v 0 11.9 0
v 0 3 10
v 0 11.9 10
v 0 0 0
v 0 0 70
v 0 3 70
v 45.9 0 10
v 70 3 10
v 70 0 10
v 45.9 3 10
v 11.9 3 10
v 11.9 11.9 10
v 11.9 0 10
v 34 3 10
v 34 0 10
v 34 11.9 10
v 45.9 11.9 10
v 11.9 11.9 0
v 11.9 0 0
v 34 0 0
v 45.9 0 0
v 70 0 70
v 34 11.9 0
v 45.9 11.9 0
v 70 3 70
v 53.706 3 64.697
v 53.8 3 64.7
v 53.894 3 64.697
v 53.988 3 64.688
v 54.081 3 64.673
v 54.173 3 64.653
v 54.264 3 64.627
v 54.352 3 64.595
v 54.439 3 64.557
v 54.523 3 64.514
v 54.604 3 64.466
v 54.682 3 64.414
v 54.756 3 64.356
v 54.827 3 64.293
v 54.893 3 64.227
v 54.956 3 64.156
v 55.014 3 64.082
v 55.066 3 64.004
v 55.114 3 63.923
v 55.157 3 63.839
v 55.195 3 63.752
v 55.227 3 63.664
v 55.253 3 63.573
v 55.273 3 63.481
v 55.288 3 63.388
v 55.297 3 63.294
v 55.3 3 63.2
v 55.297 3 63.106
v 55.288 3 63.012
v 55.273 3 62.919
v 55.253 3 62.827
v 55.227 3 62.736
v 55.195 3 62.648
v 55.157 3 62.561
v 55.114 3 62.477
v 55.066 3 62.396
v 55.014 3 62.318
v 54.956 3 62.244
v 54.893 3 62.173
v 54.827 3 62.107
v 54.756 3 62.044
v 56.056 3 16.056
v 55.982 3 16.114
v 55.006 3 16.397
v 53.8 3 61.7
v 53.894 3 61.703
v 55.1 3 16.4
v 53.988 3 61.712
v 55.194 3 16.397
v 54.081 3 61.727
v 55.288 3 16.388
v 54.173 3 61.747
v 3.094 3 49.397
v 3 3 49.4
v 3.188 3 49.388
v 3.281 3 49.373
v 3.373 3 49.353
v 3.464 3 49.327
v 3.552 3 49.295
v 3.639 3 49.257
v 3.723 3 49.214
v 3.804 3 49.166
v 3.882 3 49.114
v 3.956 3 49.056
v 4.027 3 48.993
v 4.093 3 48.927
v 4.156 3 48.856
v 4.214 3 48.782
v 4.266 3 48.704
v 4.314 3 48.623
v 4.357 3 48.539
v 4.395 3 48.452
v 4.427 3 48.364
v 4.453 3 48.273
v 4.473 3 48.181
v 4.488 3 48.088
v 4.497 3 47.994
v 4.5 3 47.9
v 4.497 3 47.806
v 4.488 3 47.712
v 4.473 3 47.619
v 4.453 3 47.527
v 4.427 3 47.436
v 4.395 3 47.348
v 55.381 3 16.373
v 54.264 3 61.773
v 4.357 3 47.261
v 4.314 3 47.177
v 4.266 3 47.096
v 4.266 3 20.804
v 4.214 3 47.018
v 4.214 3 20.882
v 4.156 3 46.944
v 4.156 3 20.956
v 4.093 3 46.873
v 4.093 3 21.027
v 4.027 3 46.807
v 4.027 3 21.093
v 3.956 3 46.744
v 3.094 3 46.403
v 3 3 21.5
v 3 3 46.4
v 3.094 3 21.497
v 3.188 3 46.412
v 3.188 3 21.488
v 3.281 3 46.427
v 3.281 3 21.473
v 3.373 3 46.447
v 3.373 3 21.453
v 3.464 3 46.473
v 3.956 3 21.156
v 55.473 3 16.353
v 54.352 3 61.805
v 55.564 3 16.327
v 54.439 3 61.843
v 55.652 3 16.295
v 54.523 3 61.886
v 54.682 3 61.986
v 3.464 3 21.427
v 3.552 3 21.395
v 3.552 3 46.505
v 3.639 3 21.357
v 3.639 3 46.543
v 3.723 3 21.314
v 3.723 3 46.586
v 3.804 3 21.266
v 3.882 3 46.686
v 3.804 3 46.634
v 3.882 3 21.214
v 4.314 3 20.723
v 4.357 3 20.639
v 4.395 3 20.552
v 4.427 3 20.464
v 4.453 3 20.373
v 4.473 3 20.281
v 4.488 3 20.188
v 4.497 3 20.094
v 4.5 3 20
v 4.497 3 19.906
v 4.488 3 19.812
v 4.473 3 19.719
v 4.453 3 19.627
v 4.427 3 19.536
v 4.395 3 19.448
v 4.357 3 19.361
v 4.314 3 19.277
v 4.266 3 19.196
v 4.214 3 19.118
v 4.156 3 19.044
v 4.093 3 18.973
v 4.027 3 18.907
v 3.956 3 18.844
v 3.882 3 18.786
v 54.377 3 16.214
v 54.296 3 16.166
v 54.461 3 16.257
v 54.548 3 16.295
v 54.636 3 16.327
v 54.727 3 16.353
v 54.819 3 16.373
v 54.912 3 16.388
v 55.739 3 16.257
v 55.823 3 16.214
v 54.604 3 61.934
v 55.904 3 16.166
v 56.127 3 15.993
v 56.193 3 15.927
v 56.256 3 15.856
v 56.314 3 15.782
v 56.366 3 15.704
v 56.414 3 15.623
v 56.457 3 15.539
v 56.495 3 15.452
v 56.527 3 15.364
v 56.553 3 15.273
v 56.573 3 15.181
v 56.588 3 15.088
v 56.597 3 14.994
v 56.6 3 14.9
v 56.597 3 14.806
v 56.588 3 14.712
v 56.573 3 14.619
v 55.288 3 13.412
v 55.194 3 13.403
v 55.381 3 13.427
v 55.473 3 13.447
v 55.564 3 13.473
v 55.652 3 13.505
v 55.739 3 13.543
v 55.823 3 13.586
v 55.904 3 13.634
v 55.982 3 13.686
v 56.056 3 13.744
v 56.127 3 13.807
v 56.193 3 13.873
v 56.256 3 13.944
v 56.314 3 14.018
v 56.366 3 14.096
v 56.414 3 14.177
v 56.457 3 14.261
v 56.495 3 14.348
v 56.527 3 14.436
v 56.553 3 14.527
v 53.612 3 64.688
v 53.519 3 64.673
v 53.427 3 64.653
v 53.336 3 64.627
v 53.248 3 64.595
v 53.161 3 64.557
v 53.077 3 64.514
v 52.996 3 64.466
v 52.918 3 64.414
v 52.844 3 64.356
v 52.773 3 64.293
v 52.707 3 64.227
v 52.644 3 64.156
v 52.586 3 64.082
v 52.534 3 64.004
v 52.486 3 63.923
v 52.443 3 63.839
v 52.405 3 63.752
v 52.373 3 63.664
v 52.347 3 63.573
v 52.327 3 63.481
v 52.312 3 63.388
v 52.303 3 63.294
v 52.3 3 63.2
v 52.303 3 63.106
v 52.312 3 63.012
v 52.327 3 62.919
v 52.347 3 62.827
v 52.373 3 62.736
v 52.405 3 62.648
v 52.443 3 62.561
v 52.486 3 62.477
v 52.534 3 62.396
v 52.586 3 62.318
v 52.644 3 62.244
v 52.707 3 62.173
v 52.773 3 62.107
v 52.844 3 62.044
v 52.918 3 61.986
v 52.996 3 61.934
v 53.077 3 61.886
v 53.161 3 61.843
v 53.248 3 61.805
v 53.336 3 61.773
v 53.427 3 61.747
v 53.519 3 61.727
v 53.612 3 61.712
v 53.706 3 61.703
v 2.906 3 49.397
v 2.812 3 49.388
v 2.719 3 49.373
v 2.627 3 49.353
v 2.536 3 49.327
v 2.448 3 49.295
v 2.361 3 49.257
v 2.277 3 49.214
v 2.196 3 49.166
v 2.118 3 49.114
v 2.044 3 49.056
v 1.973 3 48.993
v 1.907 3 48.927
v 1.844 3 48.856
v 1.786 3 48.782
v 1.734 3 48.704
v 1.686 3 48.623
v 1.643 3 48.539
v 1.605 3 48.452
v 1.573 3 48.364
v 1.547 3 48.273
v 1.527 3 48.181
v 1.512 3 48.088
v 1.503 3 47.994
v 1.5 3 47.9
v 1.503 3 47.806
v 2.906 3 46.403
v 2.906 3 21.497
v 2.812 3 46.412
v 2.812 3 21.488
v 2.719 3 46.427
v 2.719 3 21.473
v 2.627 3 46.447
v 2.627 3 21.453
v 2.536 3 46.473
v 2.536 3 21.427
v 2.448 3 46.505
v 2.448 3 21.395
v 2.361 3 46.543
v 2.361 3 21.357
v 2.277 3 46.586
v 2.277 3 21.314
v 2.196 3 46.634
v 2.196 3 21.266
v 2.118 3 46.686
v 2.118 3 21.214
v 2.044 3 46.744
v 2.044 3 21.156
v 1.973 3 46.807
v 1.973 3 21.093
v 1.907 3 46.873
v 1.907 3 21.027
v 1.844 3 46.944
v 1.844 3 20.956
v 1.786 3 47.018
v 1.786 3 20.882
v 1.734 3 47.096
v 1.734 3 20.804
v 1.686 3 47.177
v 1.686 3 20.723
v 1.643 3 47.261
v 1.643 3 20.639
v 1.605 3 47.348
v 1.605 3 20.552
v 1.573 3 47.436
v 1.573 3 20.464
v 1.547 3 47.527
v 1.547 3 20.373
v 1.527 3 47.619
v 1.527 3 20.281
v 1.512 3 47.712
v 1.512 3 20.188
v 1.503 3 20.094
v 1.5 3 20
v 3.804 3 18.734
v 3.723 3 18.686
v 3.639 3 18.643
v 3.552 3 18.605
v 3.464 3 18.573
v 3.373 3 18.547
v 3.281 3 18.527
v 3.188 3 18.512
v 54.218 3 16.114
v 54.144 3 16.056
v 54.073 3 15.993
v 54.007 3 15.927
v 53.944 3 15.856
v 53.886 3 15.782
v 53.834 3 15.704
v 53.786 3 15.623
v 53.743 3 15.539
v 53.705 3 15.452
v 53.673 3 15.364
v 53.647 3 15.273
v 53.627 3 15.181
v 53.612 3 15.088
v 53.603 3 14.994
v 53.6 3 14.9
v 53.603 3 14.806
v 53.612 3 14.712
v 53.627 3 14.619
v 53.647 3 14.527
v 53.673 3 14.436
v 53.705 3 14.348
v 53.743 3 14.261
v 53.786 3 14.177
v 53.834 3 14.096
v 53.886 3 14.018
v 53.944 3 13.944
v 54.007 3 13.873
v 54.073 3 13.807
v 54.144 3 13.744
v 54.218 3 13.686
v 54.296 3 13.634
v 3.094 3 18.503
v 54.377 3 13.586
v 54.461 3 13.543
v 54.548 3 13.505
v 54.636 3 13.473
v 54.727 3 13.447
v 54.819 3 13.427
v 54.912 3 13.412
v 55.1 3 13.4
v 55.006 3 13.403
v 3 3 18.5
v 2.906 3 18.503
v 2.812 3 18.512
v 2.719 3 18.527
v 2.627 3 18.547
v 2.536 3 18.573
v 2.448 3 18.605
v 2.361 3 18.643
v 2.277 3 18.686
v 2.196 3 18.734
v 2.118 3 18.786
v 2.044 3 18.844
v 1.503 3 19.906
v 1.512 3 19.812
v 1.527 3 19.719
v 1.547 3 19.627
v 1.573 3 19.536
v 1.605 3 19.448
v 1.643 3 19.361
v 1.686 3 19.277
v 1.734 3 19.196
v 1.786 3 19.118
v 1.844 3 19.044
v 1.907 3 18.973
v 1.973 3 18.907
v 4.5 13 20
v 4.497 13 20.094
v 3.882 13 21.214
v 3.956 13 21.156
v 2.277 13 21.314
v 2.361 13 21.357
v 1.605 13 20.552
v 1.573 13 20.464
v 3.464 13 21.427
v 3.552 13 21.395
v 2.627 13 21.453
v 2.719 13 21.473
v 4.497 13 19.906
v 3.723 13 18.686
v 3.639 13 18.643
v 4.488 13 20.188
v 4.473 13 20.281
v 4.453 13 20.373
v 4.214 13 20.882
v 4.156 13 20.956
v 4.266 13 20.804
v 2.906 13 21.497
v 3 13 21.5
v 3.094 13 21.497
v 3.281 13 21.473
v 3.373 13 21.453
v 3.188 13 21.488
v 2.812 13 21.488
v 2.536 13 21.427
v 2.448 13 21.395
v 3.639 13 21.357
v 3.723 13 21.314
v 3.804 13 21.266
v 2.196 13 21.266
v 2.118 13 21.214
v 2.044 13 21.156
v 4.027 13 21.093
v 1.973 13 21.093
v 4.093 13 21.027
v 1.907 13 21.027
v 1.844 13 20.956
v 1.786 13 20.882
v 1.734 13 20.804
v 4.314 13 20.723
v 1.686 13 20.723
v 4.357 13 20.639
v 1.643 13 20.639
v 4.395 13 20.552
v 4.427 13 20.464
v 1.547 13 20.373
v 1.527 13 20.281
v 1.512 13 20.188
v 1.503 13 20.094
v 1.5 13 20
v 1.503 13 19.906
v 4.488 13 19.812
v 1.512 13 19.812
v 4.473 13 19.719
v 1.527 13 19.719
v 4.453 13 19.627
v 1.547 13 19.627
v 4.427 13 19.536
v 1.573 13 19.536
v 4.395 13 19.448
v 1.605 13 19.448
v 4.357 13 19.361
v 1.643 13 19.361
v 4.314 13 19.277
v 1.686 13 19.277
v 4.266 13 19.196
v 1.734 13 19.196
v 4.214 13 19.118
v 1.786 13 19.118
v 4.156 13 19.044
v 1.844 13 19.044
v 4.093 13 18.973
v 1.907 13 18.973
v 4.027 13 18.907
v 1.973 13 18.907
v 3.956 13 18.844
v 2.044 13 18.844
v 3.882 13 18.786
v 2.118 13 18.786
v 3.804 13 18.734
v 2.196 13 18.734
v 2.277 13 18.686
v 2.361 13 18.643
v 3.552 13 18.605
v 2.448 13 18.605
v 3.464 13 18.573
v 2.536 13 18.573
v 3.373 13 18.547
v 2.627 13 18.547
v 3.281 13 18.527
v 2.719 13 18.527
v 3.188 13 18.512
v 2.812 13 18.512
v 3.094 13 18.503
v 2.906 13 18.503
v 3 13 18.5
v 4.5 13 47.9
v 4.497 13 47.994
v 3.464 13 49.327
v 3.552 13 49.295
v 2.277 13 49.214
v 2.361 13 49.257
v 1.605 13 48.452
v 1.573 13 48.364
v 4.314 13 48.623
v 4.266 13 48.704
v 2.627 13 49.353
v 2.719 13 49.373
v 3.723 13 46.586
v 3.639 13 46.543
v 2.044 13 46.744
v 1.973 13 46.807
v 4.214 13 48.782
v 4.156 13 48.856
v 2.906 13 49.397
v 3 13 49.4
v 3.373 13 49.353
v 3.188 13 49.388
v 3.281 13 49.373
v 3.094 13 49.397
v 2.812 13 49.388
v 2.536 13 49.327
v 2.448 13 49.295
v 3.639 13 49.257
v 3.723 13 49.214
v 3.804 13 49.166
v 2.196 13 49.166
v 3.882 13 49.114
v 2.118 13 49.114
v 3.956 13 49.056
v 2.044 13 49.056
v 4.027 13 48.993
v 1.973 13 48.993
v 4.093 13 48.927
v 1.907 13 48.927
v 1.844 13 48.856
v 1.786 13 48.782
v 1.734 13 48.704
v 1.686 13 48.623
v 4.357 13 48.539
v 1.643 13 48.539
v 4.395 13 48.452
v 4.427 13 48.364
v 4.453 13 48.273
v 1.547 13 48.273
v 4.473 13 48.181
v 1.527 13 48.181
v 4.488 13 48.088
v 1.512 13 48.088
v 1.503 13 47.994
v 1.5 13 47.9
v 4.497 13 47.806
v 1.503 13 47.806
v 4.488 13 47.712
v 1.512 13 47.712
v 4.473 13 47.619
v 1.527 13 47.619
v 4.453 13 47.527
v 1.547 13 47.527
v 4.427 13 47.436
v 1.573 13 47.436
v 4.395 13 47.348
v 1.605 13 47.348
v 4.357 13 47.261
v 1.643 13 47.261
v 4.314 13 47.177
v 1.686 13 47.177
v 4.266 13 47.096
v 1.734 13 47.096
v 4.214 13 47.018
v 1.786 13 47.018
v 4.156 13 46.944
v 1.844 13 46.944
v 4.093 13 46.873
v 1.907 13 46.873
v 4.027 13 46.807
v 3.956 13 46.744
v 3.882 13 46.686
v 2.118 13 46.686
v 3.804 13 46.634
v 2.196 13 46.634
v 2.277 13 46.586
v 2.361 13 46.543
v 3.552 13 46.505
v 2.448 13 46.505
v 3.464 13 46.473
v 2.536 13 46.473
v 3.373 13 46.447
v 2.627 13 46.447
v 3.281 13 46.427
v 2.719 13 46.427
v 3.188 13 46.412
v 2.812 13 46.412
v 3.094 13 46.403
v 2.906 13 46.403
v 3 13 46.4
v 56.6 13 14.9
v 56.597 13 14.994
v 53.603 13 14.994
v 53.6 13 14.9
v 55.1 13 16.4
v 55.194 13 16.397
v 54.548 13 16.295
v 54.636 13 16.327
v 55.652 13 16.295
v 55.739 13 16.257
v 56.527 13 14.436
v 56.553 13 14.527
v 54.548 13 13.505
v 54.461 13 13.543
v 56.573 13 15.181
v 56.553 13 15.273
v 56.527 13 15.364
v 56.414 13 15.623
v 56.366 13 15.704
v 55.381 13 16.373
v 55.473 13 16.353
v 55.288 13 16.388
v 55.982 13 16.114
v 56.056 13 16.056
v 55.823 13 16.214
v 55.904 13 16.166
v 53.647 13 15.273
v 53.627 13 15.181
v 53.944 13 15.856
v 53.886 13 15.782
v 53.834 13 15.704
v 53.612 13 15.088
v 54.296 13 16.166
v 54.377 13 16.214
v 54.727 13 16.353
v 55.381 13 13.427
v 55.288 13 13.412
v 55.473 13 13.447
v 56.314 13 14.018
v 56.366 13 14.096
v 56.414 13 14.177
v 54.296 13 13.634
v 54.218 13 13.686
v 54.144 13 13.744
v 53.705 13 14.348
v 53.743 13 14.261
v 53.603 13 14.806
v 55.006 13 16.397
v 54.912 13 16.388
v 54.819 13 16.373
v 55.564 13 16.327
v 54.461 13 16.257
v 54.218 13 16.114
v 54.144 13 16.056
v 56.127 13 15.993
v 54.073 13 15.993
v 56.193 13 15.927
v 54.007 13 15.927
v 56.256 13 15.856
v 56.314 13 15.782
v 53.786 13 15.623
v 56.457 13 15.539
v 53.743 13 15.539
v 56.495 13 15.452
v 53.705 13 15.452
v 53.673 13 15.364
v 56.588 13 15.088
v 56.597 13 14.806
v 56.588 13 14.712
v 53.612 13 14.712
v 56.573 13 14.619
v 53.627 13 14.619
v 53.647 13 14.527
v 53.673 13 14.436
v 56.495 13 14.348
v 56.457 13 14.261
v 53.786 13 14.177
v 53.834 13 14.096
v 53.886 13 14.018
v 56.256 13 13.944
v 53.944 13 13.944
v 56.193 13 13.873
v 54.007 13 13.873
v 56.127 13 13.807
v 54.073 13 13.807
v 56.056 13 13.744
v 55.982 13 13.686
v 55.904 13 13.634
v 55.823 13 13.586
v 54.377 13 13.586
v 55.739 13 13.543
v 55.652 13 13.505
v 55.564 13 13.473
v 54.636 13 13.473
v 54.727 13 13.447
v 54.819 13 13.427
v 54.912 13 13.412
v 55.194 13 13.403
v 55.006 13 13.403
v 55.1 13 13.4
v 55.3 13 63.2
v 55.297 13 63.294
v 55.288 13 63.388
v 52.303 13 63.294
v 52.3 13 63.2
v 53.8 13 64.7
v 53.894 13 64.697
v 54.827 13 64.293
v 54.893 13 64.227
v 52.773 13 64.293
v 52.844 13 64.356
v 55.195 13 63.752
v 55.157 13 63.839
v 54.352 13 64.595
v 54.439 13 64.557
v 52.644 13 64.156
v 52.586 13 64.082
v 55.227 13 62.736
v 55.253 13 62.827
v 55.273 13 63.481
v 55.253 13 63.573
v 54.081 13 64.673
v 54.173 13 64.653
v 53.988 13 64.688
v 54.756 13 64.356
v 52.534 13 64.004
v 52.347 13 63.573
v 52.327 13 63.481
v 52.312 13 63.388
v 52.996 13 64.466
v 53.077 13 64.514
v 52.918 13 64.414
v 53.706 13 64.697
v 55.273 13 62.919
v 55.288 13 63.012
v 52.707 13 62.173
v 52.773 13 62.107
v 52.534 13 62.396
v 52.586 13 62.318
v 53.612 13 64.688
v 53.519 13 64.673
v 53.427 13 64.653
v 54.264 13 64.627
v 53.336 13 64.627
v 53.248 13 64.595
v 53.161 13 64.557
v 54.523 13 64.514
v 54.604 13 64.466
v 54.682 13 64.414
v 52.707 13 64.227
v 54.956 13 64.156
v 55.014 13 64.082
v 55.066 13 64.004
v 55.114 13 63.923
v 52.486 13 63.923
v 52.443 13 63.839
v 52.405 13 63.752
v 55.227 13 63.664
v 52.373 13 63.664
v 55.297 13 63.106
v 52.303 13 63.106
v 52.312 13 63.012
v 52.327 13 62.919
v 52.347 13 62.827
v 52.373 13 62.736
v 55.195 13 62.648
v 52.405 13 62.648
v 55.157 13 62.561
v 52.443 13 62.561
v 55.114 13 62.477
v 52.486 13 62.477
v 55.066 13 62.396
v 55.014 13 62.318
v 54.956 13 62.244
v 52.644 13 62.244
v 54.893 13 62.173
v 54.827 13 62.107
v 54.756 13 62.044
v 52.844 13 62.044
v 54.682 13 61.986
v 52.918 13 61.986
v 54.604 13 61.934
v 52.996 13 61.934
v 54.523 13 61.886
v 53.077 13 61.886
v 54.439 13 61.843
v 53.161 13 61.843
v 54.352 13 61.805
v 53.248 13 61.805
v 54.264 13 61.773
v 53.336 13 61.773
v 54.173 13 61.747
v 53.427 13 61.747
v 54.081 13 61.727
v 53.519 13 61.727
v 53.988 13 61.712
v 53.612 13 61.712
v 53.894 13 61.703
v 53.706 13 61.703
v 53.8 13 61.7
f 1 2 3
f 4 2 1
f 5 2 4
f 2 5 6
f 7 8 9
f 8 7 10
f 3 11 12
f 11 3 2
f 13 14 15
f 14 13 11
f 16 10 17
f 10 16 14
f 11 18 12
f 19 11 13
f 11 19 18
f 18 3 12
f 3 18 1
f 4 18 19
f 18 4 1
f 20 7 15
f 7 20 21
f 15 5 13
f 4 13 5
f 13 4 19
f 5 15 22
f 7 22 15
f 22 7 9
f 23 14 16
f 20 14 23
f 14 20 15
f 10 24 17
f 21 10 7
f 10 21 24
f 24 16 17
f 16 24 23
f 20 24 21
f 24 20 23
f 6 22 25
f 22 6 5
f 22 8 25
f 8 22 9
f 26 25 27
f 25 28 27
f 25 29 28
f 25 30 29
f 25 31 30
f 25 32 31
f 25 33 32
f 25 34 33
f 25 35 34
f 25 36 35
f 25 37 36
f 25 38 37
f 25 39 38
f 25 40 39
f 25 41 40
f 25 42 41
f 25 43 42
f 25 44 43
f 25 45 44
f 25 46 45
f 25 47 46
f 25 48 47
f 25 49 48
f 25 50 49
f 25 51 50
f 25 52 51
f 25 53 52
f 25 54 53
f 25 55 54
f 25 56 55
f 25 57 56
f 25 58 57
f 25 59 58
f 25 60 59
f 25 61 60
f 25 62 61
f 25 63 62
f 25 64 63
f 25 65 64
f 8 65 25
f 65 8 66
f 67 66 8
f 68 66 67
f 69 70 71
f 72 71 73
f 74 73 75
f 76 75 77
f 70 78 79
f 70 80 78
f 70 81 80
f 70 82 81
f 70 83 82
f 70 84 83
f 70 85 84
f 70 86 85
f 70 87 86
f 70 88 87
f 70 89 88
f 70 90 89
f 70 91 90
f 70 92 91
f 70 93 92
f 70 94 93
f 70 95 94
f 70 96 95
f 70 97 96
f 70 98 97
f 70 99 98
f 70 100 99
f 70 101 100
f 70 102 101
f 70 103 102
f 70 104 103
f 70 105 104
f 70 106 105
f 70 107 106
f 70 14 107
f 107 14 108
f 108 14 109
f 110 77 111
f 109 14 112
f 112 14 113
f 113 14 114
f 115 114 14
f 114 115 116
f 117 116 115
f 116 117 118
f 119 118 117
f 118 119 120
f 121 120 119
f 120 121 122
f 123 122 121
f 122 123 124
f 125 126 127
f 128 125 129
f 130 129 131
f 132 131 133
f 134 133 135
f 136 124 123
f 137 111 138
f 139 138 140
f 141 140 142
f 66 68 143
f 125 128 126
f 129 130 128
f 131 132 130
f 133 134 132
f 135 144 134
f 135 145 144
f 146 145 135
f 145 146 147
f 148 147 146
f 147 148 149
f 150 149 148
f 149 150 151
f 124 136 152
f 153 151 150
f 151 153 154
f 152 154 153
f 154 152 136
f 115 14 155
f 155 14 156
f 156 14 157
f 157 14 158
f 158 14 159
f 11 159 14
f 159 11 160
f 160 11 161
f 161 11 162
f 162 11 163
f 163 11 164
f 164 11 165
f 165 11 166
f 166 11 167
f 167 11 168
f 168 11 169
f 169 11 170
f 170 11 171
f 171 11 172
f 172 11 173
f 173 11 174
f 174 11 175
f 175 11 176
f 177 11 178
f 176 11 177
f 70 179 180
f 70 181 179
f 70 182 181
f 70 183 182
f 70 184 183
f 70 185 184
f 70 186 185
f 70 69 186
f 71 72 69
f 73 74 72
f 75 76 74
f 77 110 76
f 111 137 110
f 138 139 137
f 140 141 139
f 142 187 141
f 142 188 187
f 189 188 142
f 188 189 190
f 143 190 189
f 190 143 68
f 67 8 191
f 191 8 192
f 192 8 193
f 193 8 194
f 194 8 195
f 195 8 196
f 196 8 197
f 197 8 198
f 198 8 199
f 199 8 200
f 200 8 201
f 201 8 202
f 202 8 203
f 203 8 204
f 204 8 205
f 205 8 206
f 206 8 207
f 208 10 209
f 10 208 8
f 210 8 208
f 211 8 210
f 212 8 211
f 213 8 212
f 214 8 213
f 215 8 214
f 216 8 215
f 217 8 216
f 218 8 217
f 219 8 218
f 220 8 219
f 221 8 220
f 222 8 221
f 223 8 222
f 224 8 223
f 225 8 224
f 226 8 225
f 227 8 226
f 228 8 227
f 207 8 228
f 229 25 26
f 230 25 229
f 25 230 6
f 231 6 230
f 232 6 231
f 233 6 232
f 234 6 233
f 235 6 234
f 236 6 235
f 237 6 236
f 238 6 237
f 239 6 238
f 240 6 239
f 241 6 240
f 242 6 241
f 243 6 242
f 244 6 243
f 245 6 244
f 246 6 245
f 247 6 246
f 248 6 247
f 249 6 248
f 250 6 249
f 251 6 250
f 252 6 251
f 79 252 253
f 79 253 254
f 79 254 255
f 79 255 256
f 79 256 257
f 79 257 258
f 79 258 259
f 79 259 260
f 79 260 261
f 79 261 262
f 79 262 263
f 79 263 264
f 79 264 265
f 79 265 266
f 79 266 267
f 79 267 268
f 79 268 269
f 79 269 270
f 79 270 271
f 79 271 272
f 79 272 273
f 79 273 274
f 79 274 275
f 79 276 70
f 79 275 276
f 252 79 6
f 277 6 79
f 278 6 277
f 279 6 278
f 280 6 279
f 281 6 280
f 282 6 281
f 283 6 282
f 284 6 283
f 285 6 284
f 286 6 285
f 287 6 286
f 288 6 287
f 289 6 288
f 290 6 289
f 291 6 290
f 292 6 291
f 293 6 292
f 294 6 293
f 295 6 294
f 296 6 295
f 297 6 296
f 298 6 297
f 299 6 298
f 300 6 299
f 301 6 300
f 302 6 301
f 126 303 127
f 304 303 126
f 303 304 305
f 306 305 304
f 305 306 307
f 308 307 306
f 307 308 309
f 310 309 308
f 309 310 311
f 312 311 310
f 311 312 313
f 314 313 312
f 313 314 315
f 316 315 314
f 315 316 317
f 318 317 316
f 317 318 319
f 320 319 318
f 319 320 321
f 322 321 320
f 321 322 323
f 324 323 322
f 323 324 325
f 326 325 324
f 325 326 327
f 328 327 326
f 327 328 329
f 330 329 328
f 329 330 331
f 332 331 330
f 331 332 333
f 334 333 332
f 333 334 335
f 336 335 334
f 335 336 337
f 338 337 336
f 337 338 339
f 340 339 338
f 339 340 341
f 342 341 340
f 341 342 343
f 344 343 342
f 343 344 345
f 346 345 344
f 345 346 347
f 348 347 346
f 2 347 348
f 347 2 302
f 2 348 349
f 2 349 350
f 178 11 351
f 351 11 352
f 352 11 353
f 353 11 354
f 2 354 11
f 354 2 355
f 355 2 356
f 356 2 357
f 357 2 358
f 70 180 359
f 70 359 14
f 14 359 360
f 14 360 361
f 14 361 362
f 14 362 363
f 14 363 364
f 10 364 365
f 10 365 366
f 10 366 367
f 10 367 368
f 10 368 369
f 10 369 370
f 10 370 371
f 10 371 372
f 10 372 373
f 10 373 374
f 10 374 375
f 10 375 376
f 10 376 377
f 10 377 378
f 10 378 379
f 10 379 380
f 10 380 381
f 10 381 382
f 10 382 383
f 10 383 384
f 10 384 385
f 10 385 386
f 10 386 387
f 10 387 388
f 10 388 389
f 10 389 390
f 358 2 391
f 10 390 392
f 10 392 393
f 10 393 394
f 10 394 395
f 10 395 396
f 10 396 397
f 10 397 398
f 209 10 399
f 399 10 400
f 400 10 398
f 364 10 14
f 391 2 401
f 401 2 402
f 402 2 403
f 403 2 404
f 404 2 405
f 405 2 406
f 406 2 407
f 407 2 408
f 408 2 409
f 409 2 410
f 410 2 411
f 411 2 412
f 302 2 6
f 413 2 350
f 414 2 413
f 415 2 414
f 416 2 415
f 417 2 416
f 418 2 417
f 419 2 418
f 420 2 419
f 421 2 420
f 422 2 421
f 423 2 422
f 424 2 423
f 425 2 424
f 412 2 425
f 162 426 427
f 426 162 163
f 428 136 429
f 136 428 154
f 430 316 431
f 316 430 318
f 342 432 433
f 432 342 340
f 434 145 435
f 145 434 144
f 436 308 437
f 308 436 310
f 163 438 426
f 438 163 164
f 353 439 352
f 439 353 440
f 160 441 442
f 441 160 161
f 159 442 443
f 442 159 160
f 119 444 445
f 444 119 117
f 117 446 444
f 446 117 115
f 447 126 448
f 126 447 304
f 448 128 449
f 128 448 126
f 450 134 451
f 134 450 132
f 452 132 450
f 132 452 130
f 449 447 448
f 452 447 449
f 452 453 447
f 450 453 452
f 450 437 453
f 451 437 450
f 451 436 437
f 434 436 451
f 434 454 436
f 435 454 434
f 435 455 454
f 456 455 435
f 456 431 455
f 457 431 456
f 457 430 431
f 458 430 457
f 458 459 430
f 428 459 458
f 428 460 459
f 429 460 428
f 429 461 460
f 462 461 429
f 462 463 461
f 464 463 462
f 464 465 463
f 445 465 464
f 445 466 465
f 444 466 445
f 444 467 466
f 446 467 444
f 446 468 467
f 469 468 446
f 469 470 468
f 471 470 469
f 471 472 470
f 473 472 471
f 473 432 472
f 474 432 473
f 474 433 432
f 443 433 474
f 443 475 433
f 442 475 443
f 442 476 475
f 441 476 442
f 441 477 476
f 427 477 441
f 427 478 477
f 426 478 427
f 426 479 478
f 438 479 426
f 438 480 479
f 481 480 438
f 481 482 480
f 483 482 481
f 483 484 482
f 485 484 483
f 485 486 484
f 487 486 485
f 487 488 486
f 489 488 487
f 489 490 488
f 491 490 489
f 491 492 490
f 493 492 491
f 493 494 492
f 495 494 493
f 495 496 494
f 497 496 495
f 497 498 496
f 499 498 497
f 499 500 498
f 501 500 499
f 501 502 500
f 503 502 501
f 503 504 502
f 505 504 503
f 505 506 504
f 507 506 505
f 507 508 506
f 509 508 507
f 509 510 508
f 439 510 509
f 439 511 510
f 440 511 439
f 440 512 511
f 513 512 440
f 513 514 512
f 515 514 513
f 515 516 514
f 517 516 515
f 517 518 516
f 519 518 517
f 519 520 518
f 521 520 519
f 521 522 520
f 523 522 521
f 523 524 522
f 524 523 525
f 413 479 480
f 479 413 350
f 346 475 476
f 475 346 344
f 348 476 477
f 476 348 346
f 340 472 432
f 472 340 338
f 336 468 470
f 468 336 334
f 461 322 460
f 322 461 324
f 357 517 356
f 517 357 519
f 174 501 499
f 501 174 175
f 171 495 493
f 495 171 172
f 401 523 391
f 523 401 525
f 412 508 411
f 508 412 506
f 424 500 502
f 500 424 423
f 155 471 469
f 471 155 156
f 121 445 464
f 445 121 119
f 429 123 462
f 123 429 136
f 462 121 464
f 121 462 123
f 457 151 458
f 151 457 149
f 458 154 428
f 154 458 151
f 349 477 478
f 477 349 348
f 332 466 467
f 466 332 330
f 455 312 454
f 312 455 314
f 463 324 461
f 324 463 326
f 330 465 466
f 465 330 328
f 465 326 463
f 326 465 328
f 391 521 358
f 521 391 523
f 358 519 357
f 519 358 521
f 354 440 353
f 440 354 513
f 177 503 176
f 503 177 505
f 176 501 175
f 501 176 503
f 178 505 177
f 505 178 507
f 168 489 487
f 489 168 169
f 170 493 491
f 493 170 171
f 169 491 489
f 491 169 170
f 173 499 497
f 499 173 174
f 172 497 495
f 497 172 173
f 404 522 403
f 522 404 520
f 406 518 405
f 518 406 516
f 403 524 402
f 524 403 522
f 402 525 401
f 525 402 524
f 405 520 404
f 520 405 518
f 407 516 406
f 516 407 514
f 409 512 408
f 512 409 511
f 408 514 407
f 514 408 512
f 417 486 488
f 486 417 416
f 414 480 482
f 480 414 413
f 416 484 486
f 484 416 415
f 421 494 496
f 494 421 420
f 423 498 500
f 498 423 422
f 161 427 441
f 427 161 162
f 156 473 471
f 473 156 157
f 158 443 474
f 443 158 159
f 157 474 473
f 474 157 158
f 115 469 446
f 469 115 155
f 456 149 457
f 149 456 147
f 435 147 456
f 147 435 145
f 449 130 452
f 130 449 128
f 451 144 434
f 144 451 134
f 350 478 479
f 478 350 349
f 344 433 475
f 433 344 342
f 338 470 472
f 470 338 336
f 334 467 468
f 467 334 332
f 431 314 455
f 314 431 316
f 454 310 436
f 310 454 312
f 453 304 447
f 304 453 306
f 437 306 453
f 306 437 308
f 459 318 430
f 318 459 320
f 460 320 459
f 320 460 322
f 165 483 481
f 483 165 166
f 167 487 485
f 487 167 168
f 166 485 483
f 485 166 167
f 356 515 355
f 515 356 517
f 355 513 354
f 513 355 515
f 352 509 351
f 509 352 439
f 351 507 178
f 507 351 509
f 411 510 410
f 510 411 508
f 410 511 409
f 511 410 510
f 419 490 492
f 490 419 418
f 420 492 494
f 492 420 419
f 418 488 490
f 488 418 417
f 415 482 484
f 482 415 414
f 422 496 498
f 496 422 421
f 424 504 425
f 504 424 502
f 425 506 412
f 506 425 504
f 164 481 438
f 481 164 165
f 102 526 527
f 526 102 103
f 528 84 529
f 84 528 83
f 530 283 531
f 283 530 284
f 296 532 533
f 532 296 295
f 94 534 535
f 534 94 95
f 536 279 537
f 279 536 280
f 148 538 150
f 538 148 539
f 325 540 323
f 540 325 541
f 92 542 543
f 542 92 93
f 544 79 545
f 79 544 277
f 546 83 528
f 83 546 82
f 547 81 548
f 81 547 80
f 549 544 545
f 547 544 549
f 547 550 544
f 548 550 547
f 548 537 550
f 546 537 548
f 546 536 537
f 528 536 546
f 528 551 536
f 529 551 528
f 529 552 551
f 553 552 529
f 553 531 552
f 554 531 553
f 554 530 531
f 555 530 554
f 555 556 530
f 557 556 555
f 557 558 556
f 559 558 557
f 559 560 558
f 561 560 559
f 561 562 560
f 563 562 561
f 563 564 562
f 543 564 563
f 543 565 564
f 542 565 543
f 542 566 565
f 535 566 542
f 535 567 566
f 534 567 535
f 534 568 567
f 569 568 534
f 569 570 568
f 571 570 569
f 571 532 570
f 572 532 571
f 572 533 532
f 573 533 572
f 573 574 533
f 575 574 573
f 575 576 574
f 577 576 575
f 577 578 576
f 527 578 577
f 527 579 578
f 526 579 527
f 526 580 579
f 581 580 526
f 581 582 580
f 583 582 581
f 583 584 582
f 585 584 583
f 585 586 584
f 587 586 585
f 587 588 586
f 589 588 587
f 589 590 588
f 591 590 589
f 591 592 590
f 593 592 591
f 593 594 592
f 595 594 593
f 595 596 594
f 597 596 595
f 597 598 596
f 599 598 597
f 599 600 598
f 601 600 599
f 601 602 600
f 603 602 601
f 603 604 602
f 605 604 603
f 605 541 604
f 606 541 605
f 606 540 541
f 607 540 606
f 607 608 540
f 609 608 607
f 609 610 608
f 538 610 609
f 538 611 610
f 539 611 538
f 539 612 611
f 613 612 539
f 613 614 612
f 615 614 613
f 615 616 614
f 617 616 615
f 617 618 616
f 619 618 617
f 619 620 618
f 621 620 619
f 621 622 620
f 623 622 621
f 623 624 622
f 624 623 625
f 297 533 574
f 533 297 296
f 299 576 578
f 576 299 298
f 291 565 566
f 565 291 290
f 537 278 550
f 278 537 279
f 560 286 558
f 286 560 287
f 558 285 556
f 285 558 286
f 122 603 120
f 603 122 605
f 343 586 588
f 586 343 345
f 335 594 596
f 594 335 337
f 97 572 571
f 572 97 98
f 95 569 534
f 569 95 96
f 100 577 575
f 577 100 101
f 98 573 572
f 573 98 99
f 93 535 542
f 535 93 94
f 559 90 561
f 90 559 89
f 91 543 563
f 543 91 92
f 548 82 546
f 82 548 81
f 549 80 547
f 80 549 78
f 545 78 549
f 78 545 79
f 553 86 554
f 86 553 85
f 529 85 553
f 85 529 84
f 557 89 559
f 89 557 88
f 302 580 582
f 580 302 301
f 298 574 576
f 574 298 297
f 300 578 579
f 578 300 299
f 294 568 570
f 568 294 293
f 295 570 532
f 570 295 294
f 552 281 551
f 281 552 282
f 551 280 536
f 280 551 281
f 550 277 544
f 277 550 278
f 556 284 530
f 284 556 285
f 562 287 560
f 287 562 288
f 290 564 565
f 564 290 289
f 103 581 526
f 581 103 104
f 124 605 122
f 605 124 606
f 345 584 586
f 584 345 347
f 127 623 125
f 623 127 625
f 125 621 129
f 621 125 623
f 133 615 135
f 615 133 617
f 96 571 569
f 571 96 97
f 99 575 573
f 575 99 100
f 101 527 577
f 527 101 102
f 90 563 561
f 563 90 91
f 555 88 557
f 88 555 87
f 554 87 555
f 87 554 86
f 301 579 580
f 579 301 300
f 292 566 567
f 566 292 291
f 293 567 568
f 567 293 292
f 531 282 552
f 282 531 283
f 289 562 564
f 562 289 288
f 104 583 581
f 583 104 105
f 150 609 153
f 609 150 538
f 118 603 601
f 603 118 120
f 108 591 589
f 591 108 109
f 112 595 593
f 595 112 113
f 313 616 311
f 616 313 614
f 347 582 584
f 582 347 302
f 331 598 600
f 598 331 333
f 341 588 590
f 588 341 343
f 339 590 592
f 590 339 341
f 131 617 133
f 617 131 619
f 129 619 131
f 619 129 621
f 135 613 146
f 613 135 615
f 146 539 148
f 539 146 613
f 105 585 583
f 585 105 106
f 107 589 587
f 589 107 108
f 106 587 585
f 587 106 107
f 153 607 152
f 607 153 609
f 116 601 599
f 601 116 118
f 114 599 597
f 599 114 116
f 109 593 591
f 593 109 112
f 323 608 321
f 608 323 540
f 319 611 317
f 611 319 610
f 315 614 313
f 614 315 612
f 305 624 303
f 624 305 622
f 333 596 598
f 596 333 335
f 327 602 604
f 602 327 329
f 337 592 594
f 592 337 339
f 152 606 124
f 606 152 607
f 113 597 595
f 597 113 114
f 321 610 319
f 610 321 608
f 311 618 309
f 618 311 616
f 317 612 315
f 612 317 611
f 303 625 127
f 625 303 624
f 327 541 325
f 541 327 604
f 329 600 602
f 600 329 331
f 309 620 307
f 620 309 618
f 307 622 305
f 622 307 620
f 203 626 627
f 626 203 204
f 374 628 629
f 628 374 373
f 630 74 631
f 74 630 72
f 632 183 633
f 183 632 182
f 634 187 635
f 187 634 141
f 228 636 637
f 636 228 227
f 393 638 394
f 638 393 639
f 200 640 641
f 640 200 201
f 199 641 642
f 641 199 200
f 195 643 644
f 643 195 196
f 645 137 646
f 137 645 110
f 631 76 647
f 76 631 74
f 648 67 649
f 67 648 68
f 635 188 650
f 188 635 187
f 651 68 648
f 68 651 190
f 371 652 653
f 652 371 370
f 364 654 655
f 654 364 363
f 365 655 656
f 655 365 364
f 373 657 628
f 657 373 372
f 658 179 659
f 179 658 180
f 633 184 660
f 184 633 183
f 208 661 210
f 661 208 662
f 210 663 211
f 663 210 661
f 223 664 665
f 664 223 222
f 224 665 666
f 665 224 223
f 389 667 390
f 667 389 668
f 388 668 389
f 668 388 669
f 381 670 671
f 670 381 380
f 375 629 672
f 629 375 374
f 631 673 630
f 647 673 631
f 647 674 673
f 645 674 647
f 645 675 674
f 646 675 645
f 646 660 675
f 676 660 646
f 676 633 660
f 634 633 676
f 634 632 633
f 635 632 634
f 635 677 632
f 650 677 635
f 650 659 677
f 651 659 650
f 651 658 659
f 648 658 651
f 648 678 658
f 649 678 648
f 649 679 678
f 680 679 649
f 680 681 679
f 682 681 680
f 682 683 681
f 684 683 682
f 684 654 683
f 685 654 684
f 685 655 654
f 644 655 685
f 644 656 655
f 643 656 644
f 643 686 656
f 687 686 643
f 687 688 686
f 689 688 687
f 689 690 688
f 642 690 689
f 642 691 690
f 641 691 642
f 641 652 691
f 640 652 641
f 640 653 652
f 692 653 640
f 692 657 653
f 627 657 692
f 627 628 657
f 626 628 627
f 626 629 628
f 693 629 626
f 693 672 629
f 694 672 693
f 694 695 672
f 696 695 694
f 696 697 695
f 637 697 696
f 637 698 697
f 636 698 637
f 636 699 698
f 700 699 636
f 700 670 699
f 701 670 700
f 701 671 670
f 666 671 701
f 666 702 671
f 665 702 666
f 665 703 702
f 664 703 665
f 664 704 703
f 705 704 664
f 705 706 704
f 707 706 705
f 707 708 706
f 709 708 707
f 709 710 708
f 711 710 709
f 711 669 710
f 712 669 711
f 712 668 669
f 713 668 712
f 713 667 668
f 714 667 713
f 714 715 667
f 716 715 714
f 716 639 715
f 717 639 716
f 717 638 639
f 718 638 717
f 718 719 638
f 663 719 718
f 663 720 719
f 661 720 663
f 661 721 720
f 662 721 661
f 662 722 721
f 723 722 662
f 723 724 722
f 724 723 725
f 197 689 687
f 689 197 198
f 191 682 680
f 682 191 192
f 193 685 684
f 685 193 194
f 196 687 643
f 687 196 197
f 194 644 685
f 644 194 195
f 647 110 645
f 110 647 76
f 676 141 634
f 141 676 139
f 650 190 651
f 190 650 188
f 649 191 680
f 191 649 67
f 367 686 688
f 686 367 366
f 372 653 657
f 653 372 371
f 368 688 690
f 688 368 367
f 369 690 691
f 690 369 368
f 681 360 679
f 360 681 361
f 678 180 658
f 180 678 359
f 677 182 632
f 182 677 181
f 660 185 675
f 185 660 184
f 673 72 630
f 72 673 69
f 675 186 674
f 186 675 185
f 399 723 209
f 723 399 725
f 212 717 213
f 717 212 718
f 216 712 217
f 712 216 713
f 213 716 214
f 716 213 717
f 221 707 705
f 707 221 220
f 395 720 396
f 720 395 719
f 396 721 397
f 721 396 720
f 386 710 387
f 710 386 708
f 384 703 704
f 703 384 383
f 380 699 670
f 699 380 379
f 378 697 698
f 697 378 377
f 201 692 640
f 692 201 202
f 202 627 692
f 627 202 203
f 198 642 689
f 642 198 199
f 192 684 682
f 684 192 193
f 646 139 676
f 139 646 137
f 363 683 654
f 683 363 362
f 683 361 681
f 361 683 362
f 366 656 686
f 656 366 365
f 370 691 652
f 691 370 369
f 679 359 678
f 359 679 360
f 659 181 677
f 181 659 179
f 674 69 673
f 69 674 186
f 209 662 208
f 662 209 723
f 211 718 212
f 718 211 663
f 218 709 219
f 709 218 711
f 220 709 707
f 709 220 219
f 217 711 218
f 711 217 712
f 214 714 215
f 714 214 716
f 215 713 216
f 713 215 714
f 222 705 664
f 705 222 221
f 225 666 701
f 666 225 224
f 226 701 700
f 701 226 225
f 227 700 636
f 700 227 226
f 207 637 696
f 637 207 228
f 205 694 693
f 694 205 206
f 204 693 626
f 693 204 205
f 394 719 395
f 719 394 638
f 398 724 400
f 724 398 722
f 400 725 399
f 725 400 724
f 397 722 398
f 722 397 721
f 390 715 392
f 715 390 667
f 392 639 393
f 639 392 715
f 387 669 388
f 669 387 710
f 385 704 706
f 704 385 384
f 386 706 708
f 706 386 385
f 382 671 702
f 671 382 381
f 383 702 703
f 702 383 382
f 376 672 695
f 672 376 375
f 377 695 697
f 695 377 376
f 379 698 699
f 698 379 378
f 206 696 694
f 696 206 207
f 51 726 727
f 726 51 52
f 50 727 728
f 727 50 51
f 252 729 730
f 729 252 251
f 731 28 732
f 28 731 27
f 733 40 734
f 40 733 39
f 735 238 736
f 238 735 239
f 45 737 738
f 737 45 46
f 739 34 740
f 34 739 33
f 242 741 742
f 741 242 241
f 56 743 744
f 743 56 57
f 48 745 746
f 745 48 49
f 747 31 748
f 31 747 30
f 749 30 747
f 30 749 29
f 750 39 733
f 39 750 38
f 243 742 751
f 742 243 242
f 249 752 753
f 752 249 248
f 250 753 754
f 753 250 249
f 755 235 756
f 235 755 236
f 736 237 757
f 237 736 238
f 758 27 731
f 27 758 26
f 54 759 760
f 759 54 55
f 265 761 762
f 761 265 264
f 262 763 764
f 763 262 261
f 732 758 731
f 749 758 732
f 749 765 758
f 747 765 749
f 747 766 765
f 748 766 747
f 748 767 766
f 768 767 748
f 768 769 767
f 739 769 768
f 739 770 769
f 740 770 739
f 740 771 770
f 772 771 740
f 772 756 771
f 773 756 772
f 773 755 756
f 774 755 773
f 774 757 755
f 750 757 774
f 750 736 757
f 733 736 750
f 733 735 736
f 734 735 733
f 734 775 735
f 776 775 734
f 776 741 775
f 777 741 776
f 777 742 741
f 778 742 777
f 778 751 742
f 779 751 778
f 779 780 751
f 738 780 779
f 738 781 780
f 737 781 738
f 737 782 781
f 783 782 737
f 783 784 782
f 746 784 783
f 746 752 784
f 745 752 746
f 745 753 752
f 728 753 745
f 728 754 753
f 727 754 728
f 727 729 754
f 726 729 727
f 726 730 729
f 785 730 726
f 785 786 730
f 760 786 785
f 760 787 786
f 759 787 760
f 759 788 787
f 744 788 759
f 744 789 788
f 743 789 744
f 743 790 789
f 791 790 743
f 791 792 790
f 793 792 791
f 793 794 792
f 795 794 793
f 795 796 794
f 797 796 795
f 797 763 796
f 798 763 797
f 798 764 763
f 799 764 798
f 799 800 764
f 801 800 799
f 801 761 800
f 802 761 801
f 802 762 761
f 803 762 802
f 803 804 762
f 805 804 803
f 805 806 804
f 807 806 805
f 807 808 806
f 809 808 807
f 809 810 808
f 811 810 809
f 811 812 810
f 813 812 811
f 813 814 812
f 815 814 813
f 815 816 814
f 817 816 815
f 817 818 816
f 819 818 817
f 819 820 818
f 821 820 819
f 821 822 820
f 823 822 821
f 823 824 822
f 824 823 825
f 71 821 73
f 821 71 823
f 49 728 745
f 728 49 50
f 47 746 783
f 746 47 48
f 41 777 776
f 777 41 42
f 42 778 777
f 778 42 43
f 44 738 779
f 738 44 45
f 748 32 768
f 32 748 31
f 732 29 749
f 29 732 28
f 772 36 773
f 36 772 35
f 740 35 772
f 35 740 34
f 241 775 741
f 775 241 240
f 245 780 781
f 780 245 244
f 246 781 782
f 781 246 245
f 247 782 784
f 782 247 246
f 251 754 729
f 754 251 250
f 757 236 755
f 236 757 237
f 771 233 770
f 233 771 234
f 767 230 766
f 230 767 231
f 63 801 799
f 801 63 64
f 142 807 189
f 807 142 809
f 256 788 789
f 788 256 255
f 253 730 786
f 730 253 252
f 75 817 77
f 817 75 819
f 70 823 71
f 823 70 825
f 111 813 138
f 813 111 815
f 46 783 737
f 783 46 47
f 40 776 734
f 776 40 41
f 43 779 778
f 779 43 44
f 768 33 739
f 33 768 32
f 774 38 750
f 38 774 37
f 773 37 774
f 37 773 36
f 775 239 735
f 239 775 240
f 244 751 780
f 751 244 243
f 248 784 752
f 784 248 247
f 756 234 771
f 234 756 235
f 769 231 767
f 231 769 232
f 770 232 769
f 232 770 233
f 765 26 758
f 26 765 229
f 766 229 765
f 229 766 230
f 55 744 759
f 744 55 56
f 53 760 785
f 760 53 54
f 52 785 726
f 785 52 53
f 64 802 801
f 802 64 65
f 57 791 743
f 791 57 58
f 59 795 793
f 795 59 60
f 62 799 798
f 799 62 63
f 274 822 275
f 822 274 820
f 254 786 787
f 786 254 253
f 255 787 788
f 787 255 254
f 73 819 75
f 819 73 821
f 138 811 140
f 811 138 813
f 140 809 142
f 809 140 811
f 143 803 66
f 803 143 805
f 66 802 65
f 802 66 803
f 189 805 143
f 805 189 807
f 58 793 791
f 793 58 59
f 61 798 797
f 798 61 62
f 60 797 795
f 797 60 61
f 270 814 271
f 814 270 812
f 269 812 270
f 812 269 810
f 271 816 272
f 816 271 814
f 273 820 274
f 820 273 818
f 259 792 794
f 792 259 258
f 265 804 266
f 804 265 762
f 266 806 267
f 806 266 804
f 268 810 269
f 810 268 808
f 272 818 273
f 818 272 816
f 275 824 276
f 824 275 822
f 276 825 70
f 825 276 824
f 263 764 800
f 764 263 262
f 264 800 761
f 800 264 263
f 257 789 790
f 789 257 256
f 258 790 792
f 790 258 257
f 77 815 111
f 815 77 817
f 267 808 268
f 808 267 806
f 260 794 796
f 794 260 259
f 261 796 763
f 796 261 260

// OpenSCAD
translate([0,0,0]){
    cube([11.9,11.9,10]);
}

translate([34,0,0]){
    cube([11.9,11.9,10]);
}

translate([0,0,10]){
cube([70,3,60]);
}

translate([3,13,20]){
    rotate([90,0,0]){
        cylinder(12,1.5, 1.5, $fn=100);
    }
}

translate([3,13,20+27.9]){
    rotate([90,0,0]){
        cylinder(12,1.5, 1.5, $fn=100);
    }
}

translate([3+52.1,13,20-5.1]){
    rotate([90,0,0]){
        cylinder(12,1.5, 1.5, $fn=100);
    }
}

translate([3+52.1-1.3,13,20-5.1+48.3]){
    rotate([90,0,0]){
        cylinder(12,1.5, 1.5, $fn=100);
    }
}
